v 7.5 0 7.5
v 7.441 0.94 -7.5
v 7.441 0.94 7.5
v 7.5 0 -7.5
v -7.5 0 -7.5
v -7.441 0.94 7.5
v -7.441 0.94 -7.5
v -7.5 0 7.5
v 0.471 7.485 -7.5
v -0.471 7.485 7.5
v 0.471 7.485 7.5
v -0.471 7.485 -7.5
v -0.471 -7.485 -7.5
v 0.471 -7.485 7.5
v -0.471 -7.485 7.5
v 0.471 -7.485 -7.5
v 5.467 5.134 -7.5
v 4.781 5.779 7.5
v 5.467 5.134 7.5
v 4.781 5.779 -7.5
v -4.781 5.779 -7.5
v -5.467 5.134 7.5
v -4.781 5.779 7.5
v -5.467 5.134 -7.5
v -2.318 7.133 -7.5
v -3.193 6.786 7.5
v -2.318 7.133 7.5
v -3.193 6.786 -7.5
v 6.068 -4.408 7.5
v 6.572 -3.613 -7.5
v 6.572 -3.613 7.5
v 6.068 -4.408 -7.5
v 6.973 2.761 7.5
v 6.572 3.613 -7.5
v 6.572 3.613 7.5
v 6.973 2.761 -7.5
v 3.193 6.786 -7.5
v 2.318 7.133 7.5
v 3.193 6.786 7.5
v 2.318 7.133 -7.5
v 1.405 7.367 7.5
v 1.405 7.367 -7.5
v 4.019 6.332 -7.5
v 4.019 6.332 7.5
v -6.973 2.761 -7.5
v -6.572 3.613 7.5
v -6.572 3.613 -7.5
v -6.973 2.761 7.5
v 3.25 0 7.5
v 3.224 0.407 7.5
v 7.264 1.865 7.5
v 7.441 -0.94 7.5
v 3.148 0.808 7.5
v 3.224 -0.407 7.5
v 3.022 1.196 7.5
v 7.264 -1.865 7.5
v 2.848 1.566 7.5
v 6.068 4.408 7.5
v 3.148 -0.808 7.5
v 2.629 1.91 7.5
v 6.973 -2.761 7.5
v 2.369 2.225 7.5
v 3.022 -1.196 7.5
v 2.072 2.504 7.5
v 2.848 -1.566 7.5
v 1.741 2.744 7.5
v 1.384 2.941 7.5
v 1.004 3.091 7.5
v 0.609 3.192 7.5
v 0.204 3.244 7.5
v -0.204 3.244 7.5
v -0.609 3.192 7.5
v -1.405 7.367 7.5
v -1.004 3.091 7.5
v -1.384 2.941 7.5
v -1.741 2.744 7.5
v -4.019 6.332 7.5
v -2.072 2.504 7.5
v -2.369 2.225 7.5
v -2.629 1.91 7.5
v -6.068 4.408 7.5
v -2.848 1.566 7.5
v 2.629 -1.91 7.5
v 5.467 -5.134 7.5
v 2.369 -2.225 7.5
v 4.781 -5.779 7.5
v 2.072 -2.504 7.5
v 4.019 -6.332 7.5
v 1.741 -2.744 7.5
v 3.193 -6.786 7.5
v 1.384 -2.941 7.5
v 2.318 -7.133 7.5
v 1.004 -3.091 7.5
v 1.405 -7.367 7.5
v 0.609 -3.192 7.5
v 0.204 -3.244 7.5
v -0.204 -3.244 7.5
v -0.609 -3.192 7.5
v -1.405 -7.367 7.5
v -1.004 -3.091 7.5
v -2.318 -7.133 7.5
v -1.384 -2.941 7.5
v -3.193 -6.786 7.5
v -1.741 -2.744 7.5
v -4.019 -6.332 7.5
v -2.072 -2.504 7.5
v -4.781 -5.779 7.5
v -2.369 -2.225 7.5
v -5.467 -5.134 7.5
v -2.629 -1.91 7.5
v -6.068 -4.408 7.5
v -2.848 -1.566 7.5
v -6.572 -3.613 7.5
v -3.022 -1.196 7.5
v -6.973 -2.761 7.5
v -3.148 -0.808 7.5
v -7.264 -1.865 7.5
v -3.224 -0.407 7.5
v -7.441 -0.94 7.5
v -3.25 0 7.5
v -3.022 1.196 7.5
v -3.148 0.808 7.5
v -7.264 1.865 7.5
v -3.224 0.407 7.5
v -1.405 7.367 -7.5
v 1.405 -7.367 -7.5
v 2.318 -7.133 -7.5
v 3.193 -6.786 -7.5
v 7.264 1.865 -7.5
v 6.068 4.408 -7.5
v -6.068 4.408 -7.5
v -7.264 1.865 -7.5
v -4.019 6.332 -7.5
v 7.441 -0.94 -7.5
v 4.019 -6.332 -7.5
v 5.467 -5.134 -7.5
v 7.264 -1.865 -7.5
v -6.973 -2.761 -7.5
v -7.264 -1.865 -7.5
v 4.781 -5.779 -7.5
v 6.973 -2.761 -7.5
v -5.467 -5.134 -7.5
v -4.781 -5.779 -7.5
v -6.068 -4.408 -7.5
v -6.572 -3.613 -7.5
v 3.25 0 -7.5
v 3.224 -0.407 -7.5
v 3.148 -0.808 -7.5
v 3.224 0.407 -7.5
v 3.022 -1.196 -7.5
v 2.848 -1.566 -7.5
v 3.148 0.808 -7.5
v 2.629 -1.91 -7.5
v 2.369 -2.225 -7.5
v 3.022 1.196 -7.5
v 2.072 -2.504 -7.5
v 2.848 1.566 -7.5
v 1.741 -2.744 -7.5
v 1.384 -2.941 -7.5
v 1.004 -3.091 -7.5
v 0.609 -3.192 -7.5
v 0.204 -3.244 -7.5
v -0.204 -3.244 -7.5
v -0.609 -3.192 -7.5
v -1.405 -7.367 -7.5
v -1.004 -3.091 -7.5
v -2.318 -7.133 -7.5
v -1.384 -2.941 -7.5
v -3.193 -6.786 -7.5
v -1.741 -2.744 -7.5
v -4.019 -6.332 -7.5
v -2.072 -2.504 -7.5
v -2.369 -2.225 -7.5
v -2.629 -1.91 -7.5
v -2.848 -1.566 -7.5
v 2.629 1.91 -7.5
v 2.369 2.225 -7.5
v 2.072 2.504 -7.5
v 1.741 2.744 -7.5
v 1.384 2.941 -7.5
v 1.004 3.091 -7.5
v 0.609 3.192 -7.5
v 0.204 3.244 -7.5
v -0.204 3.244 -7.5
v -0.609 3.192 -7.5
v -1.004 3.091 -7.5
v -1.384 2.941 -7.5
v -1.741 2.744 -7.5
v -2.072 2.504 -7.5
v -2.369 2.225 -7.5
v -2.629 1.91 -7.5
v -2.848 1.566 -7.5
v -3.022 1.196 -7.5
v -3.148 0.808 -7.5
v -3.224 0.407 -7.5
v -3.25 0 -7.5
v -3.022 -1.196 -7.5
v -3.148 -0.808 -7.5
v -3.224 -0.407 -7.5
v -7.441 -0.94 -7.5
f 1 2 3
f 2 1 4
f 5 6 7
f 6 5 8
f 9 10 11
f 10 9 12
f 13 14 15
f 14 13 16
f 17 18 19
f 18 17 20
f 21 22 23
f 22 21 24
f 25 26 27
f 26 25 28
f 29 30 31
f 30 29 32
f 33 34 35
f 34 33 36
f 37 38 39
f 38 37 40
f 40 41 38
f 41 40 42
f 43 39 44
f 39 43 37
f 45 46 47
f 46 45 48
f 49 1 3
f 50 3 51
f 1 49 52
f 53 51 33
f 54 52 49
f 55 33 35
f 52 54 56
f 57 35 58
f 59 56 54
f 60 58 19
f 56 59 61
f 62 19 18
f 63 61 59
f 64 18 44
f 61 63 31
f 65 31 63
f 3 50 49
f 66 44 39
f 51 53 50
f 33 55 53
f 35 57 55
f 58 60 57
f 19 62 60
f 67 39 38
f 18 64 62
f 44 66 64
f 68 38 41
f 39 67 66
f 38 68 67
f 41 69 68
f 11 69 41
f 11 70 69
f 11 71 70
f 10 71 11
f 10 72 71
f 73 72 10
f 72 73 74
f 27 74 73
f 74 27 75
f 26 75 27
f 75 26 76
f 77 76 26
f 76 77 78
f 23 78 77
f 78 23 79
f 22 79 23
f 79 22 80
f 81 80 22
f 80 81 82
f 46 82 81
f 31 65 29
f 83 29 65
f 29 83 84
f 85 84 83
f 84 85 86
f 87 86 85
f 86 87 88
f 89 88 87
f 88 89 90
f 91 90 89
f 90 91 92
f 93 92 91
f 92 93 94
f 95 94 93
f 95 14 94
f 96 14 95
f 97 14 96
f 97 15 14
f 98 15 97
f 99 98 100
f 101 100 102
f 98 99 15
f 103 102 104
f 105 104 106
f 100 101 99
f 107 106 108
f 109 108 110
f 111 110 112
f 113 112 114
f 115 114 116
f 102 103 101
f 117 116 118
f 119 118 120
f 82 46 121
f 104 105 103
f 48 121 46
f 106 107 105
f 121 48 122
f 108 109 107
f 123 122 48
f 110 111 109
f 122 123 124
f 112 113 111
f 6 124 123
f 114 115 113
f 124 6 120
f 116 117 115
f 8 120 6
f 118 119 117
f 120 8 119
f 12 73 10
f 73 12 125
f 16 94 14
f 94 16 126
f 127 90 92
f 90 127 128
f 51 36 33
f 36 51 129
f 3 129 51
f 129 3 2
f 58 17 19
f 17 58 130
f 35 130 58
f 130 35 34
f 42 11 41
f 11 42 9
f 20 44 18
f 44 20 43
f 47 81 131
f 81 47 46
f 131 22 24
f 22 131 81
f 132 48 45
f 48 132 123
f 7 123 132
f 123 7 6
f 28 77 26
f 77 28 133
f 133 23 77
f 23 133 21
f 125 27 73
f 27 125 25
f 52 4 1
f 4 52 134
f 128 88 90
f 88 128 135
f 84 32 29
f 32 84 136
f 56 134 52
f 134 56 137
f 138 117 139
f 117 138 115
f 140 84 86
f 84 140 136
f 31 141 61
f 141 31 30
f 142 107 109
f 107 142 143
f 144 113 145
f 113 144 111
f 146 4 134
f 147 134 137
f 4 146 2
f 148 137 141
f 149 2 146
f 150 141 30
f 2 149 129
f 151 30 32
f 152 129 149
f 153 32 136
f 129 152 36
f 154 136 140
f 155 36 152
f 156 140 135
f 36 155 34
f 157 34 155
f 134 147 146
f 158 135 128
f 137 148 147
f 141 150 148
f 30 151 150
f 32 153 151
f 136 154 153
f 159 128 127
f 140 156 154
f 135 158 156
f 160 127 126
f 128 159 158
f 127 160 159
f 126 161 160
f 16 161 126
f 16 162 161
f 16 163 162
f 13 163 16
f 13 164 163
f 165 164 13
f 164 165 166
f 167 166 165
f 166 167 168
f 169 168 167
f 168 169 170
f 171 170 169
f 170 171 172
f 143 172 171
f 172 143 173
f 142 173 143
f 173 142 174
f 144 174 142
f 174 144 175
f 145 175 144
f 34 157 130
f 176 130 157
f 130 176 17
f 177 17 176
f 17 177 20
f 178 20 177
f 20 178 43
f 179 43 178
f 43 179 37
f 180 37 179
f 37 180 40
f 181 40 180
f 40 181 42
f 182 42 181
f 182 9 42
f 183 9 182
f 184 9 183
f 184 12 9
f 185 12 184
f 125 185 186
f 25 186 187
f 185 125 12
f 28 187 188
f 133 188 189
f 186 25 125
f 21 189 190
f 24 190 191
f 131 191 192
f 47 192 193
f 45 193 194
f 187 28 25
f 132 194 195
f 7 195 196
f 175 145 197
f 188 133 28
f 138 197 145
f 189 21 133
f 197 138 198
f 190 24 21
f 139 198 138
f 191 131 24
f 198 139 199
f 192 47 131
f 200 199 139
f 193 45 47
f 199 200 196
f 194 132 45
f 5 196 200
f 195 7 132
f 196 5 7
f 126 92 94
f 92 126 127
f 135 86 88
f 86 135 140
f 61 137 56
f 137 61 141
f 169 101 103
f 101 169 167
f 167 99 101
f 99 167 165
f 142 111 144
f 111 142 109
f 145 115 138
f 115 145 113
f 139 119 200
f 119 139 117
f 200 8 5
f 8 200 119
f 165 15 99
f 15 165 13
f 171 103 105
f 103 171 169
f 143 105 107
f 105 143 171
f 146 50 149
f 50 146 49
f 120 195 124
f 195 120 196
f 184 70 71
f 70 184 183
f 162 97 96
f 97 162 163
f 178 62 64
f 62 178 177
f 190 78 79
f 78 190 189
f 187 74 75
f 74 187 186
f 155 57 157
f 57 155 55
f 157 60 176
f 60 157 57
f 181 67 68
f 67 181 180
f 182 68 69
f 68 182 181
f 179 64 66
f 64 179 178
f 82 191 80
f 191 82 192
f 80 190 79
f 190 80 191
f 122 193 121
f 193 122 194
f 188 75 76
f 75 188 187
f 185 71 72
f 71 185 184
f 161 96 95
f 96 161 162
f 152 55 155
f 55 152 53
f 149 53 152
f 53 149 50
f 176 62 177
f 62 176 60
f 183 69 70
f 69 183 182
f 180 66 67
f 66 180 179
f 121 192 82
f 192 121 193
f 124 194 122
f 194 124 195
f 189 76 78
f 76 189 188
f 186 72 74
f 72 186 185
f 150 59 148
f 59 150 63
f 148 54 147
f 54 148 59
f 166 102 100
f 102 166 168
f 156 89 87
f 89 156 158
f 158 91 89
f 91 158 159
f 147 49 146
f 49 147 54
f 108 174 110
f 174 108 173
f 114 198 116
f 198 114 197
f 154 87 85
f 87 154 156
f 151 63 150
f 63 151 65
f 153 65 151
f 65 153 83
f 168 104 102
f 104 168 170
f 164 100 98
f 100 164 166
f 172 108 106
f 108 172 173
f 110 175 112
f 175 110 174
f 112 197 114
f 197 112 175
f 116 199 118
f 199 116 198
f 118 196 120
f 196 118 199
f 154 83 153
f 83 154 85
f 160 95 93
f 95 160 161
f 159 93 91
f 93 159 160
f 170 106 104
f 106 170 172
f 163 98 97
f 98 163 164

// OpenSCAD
$fn = 50;


difference() {
	union() {
		translate(v = [0, 0, -7.5000000000]) {
			cylinder(h = 15, r = 7.5000000000);
		}
	}
	union() {
		translate(v = [0, 0, -100.0000000000]) {
			cylinder(h = 200, r = 3.2500000000);
		}
	}
}
